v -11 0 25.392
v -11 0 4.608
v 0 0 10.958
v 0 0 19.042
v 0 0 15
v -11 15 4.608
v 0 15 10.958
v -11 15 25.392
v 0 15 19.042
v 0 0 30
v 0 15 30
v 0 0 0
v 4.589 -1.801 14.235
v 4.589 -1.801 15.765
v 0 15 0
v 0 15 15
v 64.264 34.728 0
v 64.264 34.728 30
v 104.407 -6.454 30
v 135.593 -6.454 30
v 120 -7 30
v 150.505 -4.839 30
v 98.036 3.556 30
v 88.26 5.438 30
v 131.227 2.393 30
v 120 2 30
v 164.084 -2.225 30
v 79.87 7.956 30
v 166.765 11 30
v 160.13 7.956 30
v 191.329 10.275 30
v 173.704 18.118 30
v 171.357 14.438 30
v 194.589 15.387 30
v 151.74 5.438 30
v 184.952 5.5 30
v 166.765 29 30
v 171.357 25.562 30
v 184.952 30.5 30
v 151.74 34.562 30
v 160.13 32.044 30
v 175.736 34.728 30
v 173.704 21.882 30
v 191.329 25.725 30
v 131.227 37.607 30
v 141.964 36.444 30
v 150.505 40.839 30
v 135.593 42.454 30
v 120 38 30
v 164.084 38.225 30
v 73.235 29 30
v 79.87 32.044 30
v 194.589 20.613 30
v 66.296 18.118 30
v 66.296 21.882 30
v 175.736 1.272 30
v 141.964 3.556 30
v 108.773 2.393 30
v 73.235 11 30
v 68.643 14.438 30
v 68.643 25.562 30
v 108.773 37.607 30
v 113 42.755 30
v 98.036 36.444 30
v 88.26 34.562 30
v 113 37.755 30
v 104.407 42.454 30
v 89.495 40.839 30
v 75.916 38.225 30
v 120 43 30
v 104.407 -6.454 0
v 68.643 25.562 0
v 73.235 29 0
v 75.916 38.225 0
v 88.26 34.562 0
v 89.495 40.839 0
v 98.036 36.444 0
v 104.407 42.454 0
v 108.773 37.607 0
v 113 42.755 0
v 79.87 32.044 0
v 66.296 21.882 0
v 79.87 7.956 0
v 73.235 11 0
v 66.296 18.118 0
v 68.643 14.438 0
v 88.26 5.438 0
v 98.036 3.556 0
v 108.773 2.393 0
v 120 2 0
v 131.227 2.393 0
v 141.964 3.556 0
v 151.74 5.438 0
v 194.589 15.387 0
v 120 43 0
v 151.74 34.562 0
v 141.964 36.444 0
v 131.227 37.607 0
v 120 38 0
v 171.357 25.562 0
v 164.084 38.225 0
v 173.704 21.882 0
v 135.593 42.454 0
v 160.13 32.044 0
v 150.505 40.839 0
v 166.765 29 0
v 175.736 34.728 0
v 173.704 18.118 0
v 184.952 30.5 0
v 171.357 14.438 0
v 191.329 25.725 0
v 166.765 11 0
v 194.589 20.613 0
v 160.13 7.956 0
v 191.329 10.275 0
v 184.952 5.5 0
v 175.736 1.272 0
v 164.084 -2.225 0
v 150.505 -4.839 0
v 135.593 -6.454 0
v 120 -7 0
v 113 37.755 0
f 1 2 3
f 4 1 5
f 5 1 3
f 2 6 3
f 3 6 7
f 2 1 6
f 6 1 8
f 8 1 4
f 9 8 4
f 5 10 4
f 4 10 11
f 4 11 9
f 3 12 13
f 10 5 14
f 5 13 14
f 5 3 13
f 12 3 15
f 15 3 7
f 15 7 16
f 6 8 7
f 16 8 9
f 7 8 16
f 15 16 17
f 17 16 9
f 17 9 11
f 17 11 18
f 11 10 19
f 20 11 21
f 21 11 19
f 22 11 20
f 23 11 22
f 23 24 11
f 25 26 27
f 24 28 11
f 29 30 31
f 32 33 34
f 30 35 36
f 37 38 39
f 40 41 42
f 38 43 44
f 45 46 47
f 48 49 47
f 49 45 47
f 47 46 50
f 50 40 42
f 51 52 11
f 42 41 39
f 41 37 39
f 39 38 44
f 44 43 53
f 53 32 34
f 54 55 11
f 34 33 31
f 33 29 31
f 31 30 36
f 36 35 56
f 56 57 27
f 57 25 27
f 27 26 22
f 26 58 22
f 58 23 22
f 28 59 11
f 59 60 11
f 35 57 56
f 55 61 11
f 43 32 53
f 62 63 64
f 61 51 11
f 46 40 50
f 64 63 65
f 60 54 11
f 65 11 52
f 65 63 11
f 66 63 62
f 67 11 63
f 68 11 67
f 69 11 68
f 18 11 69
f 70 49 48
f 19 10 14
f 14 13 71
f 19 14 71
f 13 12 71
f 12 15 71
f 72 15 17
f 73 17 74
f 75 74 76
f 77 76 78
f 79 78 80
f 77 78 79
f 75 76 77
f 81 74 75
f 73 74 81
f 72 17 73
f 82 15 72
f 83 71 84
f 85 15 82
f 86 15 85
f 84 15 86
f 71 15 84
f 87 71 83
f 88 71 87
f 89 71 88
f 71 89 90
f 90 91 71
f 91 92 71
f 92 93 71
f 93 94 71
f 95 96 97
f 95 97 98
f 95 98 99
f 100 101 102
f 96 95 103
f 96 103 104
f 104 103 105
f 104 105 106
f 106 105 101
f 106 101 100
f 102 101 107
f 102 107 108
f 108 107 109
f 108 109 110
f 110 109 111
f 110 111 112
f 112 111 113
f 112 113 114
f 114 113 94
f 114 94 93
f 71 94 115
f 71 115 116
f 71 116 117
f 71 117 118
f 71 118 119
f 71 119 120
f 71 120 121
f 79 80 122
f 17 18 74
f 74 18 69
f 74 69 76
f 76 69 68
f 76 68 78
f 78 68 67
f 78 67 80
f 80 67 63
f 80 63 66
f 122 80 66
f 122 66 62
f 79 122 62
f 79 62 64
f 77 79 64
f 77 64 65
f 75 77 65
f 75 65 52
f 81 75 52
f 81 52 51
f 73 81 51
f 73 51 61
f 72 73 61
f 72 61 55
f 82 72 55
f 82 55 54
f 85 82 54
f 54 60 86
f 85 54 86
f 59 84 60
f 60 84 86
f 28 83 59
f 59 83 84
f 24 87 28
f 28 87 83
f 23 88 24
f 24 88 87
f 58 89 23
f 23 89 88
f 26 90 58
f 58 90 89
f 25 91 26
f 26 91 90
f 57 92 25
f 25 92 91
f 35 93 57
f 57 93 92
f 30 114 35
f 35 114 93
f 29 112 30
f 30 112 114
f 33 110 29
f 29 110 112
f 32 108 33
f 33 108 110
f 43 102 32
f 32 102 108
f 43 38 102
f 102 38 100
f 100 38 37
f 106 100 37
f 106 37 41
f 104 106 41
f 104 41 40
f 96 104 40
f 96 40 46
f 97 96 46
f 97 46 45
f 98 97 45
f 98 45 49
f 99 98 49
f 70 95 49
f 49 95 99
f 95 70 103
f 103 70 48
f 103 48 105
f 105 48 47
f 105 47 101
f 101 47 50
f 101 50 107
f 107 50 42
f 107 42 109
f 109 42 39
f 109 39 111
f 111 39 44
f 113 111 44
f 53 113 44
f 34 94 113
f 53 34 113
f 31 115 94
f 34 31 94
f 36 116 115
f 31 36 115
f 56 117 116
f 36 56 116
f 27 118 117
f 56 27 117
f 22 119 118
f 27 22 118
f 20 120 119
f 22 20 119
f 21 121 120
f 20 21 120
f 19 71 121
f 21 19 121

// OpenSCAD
scaleit =10;
difference(){
	union(){
		hull(){
			cube([50,15,30]);
			translate([5,0,15])
				sphere(r=2);
			rotate([0,0,90])
				translate([18,-120,0]) scale (v=[1,3,1]) 
					cylinder(h = 3*scaleit, r=2.5*scaleit);
		}

		translate([-5,15,15])
		rotate(90,[1,0,0])
			cylinder(r=12,h=15, $fn=3);
	}

	rotate([0,0,90])
	translate(v=[20,-120,-5]) scale (v=[1,3,1])
		#cylinder(h = 4*scaleit, r=1.8*scaleit);
	rotate([0,0,90])
		translate(v=[20,-120,-5]) 
			#cube([3*scaleit,.7*scaleit,4*scaleit]);

}
